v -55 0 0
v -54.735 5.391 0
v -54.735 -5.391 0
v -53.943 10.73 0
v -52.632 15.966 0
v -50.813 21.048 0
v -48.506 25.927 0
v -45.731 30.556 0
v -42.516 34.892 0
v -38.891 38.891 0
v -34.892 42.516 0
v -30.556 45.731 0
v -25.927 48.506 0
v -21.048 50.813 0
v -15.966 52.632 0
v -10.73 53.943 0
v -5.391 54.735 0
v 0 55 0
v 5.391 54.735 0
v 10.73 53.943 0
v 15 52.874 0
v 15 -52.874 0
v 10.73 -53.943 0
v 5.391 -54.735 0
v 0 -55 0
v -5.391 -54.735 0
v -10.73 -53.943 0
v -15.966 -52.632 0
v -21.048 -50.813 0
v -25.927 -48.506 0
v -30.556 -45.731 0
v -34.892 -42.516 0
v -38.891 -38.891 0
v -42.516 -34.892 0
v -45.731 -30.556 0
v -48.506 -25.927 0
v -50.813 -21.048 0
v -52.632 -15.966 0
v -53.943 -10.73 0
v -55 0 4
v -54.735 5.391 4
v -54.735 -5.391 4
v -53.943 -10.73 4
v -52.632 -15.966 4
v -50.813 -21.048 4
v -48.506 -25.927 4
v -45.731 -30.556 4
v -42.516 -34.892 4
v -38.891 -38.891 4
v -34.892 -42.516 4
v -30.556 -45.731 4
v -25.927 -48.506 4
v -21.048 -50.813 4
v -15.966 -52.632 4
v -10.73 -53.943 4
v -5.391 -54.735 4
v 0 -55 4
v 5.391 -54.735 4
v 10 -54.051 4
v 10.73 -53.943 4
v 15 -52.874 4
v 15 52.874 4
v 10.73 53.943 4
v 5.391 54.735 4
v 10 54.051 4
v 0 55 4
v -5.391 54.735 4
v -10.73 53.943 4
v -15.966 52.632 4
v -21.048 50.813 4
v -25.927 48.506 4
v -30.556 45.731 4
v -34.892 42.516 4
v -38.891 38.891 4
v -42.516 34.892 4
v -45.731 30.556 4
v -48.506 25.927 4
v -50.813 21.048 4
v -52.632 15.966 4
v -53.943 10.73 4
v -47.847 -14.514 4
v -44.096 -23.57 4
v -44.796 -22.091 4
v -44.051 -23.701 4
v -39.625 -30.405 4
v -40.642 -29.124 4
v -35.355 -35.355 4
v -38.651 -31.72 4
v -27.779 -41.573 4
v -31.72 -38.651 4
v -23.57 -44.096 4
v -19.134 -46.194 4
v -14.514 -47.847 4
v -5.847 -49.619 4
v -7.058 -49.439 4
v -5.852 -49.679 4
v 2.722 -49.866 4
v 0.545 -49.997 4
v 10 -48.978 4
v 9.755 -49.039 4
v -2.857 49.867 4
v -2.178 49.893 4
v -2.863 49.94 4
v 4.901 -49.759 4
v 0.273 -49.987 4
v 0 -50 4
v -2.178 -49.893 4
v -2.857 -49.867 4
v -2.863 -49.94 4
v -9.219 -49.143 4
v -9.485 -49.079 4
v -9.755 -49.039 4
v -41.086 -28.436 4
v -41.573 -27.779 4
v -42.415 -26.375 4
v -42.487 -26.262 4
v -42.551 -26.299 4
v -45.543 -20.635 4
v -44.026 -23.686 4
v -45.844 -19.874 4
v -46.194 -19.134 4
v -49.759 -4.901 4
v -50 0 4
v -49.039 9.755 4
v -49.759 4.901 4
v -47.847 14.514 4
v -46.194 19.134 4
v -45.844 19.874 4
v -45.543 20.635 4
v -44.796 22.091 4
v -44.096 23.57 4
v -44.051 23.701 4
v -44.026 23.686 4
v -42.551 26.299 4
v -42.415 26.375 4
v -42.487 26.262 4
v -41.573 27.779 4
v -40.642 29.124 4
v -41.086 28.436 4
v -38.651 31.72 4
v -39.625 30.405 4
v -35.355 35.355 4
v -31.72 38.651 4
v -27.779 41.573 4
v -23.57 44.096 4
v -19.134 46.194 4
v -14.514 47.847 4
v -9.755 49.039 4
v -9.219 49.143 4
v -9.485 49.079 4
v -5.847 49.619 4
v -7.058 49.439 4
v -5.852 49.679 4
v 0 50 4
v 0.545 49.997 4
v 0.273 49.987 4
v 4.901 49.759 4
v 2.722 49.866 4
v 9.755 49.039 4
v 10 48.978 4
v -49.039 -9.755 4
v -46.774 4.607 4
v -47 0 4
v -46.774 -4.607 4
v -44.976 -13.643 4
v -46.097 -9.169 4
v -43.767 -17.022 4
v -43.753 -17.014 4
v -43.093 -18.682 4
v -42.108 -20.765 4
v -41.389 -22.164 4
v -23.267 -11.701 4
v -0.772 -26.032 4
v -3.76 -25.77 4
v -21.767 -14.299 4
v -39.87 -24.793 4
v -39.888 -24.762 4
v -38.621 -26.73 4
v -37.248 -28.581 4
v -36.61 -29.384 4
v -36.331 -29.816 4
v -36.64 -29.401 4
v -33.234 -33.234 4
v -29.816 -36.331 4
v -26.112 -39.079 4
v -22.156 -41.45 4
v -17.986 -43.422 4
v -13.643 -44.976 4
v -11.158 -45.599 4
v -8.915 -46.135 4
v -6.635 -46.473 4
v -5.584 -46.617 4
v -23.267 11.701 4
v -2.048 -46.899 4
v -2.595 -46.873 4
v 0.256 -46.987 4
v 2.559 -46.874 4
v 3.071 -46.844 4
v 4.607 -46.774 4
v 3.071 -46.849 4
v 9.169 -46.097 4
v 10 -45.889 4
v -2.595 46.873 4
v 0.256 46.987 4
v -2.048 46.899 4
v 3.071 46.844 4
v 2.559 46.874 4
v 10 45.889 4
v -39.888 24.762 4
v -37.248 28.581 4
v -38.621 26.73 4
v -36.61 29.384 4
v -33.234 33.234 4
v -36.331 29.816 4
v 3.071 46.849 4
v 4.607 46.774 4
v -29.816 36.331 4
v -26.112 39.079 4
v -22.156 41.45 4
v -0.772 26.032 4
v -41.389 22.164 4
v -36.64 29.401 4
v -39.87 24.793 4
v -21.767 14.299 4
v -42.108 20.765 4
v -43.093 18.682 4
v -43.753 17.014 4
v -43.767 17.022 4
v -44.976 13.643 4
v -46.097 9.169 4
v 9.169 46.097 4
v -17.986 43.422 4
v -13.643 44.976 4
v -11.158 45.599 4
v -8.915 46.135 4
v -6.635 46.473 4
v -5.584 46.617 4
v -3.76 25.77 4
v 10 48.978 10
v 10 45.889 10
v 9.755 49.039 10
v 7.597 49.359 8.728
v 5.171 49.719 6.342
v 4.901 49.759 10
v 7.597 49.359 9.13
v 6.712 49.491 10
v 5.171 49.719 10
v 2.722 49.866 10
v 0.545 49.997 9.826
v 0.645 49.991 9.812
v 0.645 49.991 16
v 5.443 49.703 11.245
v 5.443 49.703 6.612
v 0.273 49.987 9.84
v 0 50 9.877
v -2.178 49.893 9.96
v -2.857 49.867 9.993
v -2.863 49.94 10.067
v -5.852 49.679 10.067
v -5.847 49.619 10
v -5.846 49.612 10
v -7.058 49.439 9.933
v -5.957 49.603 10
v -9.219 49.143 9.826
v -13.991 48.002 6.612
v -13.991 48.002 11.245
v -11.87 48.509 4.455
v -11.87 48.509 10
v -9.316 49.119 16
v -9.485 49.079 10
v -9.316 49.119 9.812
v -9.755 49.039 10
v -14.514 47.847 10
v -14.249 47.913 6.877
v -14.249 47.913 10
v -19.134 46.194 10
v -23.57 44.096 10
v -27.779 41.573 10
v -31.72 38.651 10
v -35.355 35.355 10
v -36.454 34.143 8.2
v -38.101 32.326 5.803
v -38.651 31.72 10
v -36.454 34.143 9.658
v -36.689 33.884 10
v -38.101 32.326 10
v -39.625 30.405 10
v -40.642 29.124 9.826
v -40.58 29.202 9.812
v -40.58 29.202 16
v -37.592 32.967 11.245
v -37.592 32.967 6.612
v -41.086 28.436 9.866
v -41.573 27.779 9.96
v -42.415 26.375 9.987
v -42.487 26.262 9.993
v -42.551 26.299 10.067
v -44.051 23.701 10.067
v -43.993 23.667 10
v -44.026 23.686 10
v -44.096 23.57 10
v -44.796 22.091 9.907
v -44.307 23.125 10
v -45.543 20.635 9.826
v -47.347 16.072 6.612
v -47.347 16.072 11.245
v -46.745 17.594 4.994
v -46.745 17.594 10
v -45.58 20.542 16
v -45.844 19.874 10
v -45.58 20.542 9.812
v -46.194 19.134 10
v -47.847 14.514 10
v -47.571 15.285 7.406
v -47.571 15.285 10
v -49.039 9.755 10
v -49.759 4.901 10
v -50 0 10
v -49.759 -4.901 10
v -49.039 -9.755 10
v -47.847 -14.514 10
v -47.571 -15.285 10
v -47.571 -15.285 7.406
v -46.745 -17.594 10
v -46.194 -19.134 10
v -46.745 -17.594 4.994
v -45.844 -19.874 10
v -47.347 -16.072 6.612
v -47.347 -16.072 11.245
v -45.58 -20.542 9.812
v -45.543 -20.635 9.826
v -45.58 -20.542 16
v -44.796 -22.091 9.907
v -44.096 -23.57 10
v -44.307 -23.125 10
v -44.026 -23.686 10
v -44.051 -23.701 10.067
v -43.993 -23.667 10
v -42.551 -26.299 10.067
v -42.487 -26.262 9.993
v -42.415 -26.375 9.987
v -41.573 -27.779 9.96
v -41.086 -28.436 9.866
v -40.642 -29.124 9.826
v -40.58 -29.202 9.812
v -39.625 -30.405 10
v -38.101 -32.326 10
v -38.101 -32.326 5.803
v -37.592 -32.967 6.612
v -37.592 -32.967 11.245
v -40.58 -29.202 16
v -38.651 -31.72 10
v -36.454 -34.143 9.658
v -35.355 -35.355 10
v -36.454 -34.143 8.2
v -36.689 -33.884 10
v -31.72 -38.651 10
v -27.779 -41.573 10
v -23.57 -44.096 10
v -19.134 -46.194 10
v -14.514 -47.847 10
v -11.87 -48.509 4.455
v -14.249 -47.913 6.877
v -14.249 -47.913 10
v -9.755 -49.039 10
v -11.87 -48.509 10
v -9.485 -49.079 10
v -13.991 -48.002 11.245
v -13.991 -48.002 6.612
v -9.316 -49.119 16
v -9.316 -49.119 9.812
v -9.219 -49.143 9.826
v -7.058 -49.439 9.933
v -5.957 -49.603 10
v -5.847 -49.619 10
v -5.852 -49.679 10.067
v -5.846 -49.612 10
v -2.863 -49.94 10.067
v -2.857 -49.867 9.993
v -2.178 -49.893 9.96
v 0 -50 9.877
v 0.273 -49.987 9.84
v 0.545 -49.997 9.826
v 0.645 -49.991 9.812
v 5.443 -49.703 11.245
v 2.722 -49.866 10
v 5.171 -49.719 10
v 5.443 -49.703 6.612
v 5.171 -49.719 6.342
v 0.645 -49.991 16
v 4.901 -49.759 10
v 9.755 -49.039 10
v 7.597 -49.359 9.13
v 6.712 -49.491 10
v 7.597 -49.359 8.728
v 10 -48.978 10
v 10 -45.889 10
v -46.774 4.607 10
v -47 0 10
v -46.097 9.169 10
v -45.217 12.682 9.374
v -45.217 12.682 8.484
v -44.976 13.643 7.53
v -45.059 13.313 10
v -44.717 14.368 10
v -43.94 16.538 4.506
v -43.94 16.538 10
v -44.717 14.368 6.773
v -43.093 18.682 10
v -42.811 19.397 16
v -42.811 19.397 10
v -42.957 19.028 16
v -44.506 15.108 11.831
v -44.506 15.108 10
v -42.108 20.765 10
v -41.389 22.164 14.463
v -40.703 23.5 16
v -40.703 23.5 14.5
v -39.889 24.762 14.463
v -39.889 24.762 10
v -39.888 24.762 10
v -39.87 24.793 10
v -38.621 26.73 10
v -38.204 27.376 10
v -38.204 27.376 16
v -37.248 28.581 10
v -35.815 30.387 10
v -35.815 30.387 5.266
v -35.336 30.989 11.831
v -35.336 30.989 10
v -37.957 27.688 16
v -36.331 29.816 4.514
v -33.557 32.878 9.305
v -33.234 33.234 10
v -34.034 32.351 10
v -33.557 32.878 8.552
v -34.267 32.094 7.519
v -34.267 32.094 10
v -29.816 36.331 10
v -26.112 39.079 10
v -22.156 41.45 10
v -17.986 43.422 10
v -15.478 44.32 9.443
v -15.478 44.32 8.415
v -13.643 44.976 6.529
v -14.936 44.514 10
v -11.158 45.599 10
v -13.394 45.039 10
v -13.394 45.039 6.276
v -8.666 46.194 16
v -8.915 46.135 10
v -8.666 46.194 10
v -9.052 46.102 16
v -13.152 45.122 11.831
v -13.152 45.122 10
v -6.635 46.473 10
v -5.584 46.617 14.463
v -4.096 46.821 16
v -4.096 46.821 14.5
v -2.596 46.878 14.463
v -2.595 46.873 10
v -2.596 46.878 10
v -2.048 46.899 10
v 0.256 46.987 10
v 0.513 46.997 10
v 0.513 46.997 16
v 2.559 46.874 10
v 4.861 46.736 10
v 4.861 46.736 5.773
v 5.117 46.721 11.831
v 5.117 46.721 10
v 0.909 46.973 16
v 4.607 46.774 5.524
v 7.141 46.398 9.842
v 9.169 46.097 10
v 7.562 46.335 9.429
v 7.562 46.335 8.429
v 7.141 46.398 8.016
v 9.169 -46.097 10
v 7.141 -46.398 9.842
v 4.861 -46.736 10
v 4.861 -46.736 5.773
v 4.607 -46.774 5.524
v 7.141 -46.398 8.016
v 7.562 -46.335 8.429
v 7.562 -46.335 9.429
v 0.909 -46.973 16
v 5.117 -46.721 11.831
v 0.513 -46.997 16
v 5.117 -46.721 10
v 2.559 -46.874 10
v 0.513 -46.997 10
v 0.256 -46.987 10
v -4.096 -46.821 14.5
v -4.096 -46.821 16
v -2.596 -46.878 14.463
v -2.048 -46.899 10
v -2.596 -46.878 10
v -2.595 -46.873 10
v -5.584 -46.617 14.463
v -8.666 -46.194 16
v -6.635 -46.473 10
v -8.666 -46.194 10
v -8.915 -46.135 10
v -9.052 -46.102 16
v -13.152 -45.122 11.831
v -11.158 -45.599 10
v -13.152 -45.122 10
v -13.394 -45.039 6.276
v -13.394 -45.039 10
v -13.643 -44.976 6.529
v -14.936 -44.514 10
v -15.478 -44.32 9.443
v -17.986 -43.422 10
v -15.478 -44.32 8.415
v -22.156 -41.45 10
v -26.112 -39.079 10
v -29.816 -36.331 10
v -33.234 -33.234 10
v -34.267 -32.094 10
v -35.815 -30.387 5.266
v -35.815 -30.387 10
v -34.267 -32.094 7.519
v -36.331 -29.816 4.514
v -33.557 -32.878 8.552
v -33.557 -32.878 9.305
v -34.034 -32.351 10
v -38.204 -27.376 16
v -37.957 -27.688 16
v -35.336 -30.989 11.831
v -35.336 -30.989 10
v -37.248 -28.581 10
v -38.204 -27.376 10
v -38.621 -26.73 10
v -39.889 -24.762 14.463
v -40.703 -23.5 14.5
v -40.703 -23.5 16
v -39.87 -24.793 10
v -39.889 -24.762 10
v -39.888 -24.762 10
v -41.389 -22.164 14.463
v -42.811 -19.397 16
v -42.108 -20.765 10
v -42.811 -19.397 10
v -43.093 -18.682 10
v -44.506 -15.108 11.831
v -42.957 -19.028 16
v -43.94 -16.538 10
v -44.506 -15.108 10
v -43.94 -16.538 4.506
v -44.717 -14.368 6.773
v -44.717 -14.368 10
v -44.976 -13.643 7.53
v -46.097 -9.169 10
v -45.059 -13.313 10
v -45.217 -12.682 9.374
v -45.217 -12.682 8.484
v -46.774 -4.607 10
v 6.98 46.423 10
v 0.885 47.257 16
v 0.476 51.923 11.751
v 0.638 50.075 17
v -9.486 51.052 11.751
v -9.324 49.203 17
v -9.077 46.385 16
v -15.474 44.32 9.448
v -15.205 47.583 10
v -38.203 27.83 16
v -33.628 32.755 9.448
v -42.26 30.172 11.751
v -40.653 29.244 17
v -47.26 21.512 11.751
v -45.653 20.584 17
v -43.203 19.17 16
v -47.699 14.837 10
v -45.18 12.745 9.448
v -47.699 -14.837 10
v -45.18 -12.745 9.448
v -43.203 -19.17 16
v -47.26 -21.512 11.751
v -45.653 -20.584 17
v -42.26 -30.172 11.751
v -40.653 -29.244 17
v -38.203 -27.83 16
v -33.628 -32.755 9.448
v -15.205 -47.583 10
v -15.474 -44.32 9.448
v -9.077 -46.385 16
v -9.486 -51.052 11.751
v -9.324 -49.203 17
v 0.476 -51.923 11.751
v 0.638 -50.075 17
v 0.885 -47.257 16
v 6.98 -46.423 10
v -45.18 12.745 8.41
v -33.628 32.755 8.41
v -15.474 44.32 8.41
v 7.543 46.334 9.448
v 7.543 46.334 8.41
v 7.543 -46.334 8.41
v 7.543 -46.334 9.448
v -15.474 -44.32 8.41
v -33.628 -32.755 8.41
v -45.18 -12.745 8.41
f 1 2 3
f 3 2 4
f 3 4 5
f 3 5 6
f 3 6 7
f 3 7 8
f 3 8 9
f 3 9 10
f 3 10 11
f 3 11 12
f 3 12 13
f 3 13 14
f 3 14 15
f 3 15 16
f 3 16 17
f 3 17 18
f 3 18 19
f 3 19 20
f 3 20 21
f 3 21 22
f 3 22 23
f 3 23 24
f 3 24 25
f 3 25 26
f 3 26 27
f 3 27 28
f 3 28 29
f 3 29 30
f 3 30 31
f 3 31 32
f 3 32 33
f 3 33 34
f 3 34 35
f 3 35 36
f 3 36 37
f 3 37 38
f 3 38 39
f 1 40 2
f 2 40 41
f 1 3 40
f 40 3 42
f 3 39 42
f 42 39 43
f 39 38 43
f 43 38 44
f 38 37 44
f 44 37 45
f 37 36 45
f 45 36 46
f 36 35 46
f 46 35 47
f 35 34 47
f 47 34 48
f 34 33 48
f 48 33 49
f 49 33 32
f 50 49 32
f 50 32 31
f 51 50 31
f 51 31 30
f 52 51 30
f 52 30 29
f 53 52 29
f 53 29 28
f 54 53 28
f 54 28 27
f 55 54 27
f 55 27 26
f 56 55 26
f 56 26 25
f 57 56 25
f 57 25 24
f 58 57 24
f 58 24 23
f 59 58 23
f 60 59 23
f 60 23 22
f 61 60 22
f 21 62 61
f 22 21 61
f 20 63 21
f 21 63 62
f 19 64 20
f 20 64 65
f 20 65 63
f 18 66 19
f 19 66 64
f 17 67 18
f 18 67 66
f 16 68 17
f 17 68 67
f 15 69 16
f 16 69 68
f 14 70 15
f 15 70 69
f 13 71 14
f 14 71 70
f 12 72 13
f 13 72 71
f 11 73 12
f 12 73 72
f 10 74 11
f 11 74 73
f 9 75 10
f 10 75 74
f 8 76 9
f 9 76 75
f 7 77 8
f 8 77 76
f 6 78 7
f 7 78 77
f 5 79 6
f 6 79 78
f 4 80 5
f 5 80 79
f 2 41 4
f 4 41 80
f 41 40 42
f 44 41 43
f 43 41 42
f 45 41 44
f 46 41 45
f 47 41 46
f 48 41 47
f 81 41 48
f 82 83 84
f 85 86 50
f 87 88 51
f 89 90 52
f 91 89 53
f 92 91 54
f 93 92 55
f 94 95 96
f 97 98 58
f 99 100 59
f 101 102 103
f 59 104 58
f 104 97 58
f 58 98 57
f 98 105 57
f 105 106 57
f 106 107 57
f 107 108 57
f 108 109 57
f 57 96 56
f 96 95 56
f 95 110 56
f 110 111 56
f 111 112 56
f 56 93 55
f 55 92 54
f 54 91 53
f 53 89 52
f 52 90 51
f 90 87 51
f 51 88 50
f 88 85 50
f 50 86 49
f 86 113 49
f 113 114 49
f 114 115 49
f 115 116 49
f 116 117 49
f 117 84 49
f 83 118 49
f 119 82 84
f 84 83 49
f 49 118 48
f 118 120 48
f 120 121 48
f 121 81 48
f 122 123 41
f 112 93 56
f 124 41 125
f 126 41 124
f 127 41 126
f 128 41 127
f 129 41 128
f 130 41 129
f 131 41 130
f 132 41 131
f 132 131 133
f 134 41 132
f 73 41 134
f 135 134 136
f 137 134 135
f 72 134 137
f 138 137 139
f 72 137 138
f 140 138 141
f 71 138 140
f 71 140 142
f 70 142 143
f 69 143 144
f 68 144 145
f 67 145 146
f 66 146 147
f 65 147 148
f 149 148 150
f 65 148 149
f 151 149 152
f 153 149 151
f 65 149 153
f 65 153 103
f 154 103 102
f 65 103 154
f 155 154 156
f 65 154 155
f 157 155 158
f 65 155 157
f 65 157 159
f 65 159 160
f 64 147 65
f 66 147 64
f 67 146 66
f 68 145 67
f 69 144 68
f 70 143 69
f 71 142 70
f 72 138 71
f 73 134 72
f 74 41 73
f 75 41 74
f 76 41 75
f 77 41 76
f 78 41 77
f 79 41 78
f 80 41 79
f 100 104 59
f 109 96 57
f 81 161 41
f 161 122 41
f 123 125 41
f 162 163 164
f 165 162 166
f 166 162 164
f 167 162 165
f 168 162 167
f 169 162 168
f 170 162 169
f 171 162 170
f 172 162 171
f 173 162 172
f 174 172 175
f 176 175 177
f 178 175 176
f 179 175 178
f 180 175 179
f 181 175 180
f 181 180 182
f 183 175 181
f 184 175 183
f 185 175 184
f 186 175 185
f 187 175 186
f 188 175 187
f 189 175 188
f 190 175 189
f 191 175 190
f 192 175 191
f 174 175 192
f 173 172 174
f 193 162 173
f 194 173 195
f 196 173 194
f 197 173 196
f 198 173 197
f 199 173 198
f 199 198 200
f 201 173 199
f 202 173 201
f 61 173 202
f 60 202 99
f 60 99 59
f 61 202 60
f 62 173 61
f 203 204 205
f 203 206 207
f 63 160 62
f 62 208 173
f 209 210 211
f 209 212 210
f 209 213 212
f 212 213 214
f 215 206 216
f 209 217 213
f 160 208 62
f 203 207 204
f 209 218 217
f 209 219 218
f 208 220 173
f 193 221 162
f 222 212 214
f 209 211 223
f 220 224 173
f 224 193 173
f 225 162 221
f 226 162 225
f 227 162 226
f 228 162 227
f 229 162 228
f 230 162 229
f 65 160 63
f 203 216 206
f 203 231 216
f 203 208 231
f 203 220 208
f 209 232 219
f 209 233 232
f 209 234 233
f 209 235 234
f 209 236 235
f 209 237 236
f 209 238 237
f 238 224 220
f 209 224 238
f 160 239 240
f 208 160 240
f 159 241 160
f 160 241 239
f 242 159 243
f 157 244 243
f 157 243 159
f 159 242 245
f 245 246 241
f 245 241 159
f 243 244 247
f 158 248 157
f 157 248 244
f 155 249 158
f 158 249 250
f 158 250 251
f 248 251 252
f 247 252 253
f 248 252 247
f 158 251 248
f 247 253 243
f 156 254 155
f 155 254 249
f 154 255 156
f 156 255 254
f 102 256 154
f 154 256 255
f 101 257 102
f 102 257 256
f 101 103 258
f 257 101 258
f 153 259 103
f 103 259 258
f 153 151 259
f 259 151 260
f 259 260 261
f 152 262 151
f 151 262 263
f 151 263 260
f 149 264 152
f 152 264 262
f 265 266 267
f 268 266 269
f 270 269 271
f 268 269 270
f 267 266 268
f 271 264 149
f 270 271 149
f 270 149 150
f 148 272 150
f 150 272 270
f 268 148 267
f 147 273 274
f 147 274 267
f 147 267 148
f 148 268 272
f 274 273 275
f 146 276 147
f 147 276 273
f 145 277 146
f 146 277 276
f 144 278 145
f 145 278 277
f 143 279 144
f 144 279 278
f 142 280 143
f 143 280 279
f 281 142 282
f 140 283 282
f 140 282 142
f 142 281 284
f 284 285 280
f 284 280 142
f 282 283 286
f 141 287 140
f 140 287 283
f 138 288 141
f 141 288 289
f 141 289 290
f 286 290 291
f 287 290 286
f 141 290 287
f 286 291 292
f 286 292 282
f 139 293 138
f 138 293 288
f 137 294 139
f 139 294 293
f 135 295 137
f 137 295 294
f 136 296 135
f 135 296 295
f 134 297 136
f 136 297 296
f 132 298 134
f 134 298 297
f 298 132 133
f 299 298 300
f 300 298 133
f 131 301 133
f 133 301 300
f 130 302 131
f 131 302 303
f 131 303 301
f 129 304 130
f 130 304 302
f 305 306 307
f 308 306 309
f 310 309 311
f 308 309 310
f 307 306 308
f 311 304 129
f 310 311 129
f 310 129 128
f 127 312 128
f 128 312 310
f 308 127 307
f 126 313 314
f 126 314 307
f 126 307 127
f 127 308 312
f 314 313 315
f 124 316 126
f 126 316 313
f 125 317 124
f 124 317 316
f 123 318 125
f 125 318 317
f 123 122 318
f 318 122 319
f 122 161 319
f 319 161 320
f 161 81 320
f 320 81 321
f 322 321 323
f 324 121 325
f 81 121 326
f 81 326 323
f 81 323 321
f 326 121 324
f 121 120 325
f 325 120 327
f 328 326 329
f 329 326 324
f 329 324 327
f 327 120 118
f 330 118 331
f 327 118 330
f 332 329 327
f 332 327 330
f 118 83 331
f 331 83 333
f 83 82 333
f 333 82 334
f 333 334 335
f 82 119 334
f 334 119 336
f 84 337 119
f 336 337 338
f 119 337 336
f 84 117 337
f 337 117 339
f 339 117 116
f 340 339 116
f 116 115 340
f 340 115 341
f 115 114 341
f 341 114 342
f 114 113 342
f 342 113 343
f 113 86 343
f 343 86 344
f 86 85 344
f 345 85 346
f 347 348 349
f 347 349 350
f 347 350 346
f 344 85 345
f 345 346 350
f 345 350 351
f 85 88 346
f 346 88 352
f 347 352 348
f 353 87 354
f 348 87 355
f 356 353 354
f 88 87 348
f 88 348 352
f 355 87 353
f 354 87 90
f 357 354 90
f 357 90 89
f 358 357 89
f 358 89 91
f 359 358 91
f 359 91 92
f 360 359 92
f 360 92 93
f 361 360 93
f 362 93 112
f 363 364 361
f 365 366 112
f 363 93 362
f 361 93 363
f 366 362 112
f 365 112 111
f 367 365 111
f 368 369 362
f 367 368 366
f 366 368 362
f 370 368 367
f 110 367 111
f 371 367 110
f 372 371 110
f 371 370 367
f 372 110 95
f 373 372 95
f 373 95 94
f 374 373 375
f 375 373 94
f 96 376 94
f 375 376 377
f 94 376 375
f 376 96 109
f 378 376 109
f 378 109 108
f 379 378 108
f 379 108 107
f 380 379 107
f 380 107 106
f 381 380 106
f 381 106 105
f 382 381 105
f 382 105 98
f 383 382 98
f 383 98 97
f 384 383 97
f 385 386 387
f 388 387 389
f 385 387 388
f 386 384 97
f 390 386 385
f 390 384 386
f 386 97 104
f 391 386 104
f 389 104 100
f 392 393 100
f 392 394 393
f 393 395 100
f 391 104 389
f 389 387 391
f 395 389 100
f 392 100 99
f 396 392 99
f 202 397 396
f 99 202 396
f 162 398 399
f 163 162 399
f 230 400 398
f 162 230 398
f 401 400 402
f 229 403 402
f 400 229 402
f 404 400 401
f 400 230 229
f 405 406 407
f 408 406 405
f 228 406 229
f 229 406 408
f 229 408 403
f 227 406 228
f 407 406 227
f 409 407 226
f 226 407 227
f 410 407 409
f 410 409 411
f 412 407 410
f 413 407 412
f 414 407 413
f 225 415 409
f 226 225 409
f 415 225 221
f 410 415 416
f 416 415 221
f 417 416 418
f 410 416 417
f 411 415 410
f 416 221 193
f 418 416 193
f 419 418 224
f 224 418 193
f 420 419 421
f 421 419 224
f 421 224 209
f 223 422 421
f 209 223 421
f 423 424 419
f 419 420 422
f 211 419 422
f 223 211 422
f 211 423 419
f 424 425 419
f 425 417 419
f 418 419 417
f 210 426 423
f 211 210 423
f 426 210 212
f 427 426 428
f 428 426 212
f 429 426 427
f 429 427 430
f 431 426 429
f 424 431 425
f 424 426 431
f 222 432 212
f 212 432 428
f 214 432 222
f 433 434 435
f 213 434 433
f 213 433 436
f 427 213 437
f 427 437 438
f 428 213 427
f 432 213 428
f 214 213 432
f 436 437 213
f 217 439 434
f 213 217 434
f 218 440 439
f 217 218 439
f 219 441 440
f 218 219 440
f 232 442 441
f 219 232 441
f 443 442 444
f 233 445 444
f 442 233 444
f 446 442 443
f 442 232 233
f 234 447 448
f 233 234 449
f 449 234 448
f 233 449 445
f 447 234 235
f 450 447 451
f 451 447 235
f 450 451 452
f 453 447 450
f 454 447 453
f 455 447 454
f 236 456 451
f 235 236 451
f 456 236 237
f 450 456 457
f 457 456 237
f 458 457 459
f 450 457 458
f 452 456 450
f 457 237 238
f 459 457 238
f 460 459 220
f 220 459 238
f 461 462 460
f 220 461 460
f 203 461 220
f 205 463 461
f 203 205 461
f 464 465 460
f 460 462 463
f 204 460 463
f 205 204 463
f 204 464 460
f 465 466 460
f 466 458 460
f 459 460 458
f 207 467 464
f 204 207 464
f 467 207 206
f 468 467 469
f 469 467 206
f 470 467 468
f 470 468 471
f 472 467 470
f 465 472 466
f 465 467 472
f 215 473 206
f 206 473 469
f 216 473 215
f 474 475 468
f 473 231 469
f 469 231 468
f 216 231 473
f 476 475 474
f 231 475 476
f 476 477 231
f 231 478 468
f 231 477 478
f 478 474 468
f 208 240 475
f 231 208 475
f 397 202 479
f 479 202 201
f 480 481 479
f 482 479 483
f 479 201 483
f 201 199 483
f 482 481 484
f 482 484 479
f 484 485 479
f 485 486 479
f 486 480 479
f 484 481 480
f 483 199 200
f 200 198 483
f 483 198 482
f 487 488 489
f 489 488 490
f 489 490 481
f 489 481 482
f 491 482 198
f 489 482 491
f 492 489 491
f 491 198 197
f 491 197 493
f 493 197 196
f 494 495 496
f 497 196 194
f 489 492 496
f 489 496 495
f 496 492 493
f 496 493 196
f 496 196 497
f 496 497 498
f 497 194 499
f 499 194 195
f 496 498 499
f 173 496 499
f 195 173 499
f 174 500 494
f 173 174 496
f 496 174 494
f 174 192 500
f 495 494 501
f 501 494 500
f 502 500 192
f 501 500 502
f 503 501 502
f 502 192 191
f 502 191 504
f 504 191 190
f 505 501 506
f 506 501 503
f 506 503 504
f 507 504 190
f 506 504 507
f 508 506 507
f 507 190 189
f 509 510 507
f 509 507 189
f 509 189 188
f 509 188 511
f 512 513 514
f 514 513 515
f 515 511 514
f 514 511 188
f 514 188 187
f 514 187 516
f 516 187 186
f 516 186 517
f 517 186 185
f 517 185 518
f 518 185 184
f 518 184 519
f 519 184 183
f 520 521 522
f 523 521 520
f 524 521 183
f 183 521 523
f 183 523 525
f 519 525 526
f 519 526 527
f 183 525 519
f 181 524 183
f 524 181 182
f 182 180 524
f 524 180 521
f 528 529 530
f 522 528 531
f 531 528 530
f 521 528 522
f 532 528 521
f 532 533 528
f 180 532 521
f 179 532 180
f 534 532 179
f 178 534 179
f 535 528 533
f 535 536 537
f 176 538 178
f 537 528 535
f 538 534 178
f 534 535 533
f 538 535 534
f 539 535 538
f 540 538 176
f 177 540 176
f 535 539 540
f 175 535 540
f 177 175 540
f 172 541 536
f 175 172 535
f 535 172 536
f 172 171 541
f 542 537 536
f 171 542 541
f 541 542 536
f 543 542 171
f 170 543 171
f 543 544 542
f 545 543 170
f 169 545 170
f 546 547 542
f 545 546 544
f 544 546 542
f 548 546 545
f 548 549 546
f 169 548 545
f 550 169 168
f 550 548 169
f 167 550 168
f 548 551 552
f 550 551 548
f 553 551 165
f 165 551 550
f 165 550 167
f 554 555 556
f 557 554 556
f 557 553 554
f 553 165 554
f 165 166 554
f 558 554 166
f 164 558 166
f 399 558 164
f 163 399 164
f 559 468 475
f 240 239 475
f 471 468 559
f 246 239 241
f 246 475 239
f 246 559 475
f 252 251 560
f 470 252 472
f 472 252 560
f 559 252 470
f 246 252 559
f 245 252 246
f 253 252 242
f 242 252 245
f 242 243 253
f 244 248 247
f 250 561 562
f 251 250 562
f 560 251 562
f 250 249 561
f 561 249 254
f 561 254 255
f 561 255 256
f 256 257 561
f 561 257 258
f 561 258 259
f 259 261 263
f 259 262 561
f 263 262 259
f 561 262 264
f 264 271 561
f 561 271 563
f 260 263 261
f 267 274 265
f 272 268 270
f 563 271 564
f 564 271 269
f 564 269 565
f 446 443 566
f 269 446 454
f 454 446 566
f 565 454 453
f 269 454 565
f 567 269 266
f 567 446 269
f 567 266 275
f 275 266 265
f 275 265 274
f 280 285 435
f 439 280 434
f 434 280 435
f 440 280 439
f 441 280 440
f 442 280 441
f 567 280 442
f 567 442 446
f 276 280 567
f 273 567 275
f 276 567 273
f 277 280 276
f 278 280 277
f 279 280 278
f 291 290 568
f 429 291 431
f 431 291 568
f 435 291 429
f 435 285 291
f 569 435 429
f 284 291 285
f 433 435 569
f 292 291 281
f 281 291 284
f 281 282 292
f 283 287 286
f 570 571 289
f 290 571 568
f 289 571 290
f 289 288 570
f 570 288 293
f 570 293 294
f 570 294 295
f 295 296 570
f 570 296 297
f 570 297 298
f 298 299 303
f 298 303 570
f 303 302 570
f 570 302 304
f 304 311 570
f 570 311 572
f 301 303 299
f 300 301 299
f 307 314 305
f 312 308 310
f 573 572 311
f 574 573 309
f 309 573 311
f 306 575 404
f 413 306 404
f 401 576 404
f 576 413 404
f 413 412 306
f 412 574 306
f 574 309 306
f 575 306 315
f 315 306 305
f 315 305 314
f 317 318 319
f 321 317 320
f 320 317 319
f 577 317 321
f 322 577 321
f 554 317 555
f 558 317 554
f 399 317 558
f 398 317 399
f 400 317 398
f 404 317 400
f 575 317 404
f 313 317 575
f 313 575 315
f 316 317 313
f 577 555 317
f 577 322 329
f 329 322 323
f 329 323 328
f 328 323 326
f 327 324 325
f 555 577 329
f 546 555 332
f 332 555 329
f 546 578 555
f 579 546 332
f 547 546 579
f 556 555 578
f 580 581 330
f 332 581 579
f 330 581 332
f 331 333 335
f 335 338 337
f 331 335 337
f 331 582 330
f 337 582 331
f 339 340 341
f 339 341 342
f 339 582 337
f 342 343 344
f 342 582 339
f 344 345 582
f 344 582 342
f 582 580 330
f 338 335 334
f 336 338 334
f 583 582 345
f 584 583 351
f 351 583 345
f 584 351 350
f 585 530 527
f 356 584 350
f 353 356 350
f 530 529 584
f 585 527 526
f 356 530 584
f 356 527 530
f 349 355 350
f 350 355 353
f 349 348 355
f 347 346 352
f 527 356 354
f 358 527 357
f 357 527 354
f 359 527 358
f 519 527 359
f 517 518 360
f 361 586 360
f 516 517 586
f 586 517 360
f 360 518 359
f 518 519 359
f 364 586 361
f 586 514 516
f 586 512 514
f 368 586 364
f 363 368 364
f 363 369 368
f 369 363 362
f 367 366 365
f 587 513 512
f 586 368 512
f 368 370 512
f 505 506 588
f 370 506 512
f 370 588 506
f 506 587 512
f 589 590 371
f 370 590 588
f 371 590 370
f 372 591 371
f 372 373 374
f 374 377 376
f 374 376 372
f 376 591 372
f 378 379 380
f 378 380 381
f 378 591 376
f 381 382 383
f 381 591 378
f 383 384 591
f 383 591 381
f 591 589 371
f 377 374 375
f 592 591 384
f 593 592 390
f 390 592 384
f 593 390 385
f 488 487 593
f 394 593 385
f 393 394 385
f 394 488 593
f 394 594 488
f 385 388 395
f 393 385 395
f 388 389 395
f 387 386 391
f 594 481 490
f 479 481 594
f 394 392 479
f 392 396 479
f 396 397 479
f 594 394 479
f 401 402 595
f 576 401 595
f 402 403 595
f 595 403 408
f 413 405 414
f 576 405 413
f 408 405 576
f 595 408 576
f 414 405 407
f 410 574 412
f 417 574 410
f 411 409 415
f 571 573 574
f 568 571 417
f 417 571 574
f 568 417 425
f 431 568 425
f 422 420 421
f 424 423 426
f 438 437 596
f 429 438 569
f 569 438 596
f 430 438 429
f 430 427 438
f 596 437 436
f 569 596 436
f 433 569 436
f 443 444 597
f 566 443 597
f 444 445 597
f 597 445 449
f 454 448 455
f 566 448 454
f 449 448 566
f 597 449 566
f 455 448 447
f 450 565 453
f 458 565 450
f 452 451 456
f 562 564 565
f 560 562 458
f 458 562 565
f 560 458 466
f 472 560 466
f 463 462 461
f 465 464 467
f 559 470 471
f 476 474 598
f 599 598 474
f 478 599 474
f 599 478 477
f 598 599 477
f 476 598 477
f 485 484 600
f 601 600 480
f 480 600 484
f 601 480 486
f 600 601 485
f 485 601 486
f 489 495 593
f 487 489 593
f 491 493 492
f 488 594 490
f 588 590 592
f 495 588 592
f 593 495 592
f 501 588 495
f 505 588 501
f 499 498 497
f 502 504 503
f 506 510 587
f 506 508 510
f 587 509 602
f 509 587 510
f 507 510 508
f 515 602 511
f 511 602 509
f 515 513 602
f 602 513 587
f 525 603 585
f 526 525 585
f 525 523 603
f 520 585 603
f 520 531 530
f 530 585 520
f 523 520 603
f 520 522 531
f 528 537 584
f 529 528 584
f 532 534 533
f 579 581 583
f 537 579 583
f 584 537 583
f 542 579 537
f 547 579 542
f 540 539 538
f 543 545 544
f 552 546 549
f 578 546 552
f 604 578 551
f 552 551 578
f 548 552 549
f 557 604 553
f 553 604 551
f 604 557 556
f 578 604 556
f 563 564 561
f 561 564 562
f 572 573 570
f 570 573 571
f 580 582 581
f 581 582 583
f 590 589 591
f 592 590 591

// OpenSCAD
// Boat deck drain cover

hole_r   = 51;     // Radius of hole
hole_h   = 62;     // Height of hole
hole_t   = 6;      // Thickness of hole (through hull plate)
cover_t  = 10;     // Overall thickness of hole+cover
flange_r = 56;     // Radius of cover (flange)
clip_t   = 3;      // Thickness of clips
clip_w   = 10;     // Width of clip at top
clip_h   = 6;      // height of clips over hole
hook_t   = 5;

hole_r   = 50;
hole_h   = 60;
hole_t   = 6;
cover_t  = 10;
flange_r = 55;
clip_t   = 3;
clip_w   = 10;
clip_h   = 6;
hook_t   = 5;

module fillet_yz(fy, fz, ft, py)
{
  translate([-ft/2,py-fy,0])
    intersection()
    {
      rotate([atan(fz/fy),0,0])
        translate([0,0,-fz])
          cube([ft,fy+fz,fz]);
    cube([ft,fy,fz]);
    }
}

module cover_inner_cylinder()
{
  difference()
  {
    cylinder(r=hole_r,h=cover_t+clip_h,$fn=64);
    translate([0,0,-1])
      cylinder(r=hole_r-clip_t,h=cover_t+clip_h+2,$fn=64);
  }
}

module cover_flap()
{
  difference()
  {
    // Flanged disk
    union()
    {
      cylinder(r=hole_r,h=cover_t,$fn=64);
      cylinder(r=flange_r,h=cover_t-hole_t,$fn=64);
    }
    // Leave jusyt hollow cylinder in hole
    translate([0,0,cover_t-hole_t])
    {
      difference()
      {
        cylinder(r=hole_r-clip_t,h=cover_t,$fn=64);
        //cylinder(r=(hole_r-clip_t)-(flange_r-hole_r),h=cover_t);
      }
    }
    // Cut away bottom of disk
    union()
    {
      translate([hole_h-hole_r,-flange_r,cover_t-hole_t])
        cube([flange_r, flange_r*2, cover_t*2]);
      translate([(hole_h-hole_r)+(flange_r-hole_r),-flange_r,-cover_t*0.5])
        cube([flange_r, flange_r*2, cover_t*2]);
    }
  }
}

module cover_clip(a)
{
  ha = asin((hook_t-clip_t)/clip_h);
  hd = 1;
  rotate([0,0,a])
  {
    // Clip shape
    intersection()
    {
      cover_inner_cylinder();
      translate([-clip_w*0.5,hole_r-clip_t*1.5,0])
      {
        cube([clip_w,clip_t*2,cover_t+clip_h]);  // Main peg
        translate([0,0,cover_t+clip_h])
          rotate([0,45,0])
            translate([0,0,-cover_t])
              cube([clip_w,clip_t*2,cover_t]);
        translate([clip_w,0,cover_t+clip_h])
          rotate([0,-45,0])
            translate([-clip_w,0,-cover_t])
              cube([clip_w,clip_t*2,cover_t]);
      }
    }
    // Clip lip
    translate([-clip_w*0.5,hole_r-clip_t,0])
      translate([0,0,cover_t+clip_h])
        rotate([ha,0,0])
          translate([0,0,-(clip_h+hd)])
            difference()
            {
              cube([clip_w,clip_t,clip_h+hd]);
              translate([-1,0,0])
                rotate([-45-ha,0,0])
                  cube([clip_w+2,clip_t,clip_h]);
            }
    // Supporting fillet
    fillet_yz((cover_t+clip_h)*2, (cover_t+clip_h), clip_t, hole_r);
  }
}

module cover()
{
  cover_flap();
  cover_clip(5);
  cover_clip(60);
  cover_clip(120);
  cover_clip(175);
}

cover();

//cover_clip(0);







//translate([-clip_t/2,0,0])
//  cube([clip_t,(cover_t+clip_h)*2,cover_t+clip_h]);
